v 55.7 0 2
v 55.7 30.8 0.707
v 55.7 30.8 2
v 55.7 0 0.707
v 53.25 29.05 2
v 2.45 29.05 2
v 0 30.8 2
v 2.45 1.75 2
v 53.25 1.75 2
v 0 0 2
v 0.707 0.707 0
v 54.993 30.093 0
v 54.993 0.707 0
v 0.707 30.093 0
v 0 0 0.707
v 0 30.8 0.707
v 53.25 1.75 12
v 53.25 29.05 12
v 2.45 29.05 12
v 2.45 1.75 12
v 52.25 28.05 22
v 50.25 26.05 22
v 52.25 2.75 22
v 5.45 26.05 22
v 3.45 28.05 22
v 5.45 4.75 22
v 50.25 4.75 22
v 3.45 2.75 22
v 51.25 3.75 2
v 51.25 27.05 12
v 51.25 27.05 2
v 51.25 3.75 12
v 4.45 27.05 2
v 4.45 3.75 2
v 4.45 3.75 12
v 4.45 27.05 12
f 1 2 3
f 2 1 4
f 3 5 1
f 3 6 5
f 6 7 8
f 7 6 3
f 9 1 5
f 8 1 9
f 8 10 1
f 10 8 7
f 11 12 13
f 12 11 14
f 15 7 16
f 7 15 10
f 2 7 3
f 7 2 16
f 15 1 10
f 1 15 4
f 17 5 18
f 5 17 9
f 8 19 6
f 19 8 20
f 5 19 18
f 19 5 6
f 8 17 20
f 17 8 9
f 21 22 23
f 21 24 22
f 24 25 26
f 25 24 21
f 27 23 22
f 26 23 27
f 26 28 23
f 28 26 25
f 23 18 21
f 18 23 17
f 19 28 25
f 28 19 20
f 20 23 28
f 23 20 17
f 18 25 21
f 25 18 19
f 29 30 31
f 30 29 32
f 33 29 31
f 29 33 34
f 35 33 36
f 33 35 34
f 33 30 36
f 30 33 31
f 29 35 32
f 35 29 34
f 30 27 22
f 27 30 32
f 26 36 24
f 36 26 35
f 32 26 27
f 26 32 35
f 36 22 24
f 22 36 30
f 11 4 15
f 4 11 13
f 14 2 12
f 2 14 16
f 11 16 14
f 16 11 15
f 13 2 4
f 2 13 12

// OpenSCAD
//
// ktRACK87
//
//

gap1 = 0.001;
gap2 = 0.003;
th = 2;

X=55.7;
Y=30.8;
Z=2;

X2=50.8;
Y2=27.3;
Z2=19.9;


base();



module base()
{
difference()
{
    union()
    {
        translate([0, 0, 0]) cube([X, Y, Z]);
        translate([(X-X2)/2, (Y-Y2)/2, Z]) cube([X2, Y2, Z2-10]);
        hull()
        {
            translate([(X-X2)/2+2/2, (Y-Y2)/2+2/2, Z+Z2]) cube([X2-2, Y2-2, 0.1]);
            translate([(X-X2)/2, (Y-Y2)/2, Z+Z2-10]) cube([X2, Y2, 0.1]);
        }
    }
    translate([(X-X2)/2+th, (Y-Y2)/2+th, Z]) cube([X2-th*2, Y2-th*2, Z2-10]);

    hull()
    {
        translate([(X-X2)/2+2/2+th, (Y-Y2)/2+2/2+th, Z+Z2]) cube([X2-2-th*2, Y2-2-th*2, 0.1]);
        translate([(X-X2)/2+th, (Y-Y2)/2+th, Z+Z2-10]) cube([X2-th*2, Y2-th*2, 0.1]);
    }


    translate([0, sqrt(1/2), 0]) rotate([90+45, 0, 0]) cube([X, 1, 1]);
    translate([0, Y+sqrt(1/2), 0]) rotate([90+45, 0, 0]) cube([X, 1, 1]);
    translate([sqrt(1/2), 0, 0]) rotate([0, -90-45, 0]) cube([1, Y, 1]);
    translate([X+sqrt(1/2), 0, 0]) rotate([0, -90-45, 0]) cube([1, Y, 1]);

}
}
